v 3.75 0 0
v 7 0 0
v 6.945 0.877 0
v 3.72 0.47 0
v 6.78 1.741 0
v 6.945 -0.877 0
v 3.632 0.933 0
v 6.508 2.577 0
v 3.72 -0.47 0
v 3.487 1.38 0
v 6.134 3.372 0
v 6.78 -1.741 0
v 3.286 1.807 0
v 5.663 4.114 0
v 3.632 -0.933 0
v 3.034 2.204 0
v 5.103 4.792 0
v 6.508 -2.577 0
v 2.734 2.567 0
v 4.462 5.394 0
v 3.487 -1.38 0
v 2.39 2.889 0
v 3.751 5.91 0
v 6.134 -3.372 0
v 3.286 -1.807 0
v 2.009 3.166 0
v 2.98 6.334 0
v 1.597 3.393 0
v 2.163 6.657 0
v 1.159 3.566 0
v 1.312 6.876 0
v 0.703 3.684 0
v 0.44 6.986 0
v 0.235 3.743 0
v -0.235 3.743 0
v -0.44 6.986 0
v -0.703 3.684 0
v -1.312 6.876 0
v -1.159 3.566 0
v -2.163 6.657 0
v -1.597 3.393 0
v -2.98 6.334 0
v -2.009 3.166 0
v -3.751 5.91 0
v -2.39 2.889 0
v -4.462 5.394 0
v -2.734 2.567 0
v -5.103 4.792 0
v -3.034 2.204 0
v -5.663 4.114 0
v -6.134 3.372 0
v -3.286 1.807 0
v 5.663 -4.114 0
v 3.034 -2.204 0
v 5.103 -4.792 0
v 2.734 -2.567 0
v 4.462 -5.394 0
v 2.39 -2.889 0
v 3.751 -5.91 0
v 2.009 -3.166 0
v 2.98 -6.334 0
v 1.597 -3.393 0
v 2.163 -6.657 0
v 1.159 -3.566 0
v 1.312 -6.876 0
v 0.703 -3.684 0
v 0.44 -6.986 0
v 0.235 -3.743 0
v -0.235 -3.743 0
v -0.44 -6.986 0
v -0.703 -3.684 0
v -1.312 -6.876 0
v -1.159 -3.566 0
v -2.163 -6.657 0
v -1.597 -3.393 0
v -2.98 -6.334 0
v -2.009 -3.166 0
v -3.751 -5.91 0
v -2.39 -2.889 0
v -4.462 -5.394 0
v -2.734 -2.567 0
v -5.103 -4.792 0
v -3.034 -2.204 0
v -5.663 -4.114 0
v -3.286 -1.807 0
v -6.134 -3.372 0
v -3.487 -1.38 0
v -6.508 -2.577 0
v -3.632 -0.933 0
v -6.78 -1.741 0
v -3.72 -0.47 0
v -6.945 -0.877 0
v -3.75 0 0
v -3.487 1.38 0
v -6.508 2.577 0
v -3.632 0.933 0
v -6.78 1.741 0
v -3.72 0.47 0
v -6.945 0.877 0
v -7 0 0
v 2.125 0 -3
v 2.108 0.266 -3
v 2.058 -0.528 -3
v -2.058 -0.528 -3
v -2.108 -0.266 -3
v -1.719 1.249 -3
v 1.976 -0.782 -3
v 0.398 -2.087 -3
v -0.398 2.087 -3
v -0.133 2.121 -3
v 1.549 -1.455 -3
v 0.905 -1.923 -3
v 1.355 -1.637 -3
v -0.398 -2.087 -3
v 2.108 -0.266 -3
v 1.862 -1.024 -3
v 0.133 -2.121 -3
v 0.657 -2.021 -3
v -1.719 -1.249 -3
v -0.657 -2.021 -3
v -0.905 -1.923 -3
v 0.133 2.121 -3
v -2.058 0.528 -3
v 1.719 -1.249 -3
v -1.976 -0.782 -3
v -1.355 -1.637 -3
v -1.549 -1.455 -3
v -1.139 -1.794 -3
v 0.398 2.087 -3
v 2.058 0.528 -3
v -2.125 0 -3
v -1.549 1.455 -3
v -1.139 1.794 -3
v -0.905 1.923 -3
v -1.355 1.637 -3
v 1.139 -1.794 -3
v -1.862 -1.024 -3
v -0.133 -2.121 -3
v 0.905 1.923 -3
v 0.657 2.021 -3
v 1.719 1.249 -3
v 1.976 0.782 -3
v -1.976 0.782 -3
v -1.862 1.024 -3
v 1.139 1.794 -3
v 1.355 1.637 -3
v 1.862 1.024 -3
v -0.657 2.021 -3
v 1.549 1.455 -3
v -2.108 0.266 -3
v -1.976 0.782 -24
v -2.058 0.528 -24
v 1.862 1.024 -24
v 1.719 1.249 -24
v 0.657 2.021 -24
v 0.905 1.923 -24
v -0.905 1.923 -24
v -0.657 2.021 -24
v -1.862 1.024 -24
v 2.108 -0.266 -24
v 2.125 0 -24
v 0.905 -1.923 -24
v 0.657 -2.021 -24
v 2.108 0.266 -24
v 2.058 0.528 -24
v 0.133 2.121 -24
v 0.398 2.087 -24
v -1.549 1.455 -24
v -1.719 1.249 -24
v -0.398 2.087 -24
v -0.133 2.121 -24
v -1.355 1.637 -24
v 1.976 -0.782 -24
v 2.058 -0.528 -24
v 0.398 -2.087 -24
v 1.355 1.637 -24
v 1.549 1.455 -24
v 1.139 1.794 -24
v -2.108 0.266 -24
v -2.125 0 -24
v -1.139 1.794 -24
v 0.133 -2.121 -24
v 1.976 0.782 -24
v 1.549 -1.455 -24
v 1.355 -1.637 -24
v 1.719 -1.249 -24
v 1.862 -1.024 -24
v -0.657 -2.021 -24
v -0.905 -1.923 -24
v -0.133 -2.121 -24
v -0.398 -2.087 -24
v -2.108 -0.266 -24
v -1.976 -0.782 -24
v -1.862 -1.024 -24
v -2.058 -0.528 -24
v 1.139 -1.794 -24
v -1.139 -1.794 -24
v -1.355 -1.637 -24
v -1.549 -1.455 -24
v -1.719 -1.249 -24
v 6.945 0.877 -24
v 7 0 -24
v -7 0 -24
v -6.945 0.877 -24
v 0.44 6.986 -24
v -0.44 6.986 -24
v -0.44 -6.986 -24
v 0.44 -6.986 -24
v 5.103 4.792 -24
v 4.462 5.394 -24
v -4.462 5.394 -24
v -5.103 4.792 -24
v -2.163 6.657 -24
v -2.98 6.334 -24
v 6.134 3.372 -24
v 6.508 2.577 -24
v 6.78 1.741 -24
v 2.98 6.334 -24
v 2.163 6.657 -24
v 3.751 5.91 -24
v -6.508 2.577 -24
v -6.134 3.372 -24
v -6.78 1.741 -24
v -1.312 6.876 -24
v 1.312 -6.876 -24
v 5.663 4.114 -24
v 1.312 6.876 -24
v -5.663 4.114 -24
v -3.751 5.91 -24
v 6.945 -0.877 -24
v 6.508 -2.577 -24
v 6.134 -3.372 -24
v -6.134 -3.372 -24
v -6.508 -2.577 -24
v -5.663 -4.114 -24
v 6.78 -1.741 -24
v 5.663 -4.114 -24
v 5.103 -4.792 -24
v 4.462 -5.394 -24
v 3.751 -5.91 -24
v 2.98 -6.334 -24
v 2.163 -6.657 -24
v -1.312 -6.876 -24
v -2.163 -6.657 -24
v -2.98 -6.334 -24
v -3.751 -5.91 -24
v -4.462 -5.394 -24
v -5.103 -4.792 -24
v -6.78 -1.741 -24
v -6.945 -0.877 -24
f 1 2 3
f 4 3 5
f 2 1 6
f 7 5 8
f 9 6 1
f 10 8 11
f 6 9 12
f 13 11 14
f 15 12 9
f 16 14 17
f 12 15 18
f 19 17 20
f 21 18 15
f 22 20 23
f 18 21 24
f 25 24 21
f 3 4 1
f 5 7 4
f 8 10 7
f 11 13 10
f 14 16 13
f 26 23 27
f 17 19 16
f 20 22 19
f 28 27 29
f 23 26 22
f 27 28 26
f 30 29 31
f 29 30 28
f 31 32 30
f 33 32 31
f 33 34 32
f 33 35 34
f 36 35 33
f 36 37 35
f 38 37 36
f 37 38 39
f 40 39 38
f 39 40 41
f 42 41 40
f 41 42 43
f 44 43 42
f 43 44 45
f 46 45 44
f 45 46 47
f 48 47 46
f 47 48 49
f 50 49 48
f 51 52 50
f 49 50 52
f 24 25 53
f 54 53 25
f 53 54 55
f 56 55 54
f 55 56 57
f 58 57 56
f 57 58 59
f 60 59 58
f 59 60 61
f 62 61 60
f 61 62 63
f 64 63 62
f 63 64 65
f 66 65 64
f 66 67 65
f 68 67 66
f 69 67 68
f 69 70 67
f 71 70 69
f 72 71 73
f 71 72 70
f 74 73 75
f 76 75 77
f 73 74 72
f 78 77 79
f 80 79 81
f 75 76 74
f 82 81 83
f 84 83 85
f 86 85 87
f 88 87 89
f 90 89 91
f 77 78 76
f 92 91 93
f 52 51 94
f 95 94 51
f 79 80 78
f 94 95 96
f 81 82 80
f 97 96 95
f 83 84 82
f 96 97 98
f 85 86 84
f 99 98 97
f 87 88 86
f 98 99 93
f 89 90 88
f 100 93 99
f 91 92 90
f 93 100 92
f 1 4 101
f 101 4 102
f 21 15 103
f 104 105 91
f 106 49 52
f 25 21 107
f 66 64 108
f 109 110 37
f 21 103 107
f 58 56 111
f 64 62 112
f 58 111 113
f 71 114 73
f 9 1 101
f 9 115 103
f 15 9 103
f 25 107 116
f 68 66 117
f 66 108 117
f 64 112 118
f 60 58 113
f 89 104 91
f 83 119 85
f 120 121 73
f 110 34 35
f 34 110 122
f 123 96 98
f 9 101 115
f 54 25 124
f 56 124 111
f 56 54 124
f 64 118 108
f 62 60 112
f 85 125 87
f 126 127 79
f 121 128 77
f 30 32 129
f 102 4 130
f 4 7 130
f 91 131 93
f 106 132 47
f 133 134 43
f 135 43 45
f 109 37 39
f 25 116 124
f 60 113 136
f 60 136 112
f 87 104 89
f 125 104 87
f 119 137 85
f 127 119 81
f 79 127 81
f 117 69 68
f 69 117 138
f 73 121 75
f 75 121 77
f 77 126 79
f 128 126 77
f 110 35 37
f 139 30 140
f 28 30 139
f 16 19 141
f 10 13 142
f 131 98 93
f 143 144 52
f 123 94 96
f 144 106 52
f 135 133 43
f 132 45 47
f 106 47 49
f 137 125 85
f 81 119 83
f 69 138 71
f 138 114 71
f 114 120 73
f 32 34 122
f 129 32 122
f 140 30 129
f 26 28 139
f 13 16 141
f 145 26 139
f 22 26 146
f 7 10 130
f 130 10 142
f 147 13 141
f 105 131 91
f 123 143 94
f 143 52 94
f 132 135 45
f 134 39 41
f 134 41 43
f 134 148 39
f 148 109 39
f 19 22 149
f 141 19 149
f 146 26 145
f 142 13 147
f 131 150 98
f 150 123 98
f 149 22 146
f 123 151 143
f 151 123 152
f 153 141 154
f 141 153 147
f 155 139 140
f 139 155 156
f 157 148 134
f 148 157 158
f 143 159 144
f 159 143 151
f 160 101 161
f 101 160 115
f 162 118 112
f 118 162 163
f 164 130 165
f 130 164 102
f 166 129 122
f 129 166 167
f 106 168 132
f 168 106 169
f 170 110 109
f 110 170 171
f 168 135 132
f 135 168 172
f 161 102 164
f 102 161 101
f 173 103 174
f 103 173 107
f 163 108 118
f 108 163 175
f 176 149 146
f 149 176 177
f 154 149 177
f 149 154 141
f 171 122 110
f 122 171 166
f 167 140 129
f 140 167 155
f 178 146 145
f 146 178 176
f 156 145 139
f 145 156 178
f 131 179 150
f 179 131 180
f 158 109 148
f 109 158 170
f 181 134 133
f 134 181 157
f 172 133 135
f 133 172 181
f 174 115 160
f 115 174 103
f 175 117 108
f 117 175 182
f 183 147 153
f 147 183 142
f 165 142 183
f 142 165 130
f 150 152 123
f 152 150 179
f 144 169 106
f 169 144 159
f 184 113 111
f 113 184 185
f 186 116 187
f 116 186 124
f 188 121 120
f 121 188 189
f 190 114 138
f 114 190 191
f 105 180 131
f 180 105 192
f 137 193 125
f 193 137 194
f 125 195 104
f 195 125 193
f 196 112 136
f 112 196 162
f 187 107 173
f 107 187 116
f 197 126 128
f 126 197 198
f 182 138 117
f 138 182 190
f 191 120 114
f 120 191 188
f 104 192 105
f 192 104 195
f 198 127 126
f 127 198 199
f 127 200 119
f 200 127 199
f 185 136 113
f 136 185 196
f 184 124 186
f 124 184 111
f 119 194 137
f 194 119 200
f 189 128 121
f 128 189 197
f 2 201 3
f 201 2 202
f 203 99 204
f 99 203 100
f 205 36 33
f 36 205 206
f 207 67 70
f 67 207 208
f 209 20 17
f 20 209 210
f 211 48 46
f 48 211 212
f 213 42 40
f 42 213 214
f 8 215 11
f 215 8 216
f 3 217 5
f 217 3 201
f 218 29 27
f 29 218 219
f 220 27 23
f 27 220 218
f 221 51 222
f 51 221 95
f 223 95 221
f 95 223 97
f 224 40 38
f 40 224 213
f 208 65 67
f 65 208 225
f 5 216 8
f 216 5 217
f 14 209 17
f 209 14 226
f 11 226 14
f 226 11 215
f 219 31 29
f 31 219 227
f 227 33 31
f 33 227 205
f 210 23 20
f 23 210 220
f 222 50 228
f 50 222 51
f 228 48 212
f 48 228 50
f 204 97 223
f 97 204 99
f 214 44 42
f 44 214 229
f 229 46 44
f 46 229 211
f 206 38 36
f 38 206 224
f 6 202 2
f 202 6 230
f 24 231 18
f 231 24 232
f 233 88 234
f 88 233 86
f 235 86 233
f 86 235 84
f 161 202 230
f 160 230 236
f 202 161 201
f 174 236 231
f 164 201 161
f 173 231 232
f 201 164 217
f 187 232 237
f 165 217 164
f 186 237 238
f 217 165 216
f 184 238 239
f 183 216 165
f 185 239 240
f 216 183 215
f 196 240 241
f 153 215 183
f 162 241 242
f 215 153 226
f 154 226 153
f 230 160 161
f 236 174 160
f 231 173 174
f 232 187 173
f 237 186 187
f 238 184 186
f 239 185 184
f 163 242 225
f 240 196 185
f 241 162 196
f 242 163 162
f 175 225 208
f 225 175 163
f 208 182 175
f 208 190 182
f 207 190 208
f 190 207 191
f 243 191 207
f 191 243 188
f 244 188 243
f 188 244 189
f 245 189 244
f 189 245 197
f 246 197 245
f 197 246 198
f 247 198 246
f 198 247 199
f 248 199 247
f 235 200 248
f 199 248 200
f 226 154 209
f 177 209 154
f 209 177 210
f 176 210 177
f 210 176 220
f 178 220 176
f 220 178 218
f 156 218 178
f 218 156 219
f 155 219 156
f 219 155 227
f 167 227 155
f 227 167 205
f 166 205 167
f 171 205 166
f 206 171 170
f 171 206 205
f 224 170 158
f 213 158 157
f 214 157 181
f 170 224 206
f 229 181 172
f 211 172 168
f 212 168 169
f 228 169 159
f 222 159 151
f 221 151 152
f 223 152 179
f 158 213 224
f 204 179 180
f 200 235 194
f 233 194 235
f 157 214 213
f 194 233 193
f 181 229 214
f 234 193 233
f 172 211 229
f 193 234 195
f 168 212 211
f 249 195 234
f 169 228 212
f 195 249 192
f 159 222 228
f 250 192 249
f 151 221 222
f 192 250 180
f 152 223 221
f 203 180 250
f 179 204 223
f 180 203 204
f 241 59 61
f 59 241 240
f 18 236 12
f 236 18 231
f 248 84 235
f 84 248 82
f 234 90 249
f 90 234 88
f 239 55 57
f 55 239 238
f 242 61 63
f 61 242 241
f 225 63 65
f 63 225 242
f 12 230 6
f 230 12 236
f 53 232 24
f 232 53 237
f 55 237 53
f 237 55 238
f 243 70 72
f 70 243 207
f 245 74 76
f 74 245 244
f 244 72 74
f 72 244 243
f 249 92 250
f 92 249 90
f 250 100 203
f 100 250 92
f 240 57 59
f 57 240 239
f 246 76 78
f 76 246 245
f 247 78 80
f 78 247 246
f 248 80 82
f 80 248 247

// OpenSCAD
$fn = 50;

difference() {
	union() {
		translate(v = [0, 0, -24.0]) {
			cylinder(h = 24, r = 7.0);
		}
	}
	union() {
		translate(v = [0, 0, 0]) {
			rotate(a = [0, 0, 0]) {
				difference() {
					union() {
						translate(v = [0, 0, -27.0]) {
							cylinder(h = 27, r = 2.0);
						}
						translate(v = [0, 0, -3]) {
							cylinder(h = 3, r1 = 2.125, r2 = 3.75);
						}
						translate(v = [0, 0, -27.0]) {
							cylinder(h = 27, r = 2.125);
						}
						translate(v = [0, 0, -27.0]) {
							cylinder(h = 27, r = 2.0);
						}
					}
					union();
				}
			}
		}
	}
}
